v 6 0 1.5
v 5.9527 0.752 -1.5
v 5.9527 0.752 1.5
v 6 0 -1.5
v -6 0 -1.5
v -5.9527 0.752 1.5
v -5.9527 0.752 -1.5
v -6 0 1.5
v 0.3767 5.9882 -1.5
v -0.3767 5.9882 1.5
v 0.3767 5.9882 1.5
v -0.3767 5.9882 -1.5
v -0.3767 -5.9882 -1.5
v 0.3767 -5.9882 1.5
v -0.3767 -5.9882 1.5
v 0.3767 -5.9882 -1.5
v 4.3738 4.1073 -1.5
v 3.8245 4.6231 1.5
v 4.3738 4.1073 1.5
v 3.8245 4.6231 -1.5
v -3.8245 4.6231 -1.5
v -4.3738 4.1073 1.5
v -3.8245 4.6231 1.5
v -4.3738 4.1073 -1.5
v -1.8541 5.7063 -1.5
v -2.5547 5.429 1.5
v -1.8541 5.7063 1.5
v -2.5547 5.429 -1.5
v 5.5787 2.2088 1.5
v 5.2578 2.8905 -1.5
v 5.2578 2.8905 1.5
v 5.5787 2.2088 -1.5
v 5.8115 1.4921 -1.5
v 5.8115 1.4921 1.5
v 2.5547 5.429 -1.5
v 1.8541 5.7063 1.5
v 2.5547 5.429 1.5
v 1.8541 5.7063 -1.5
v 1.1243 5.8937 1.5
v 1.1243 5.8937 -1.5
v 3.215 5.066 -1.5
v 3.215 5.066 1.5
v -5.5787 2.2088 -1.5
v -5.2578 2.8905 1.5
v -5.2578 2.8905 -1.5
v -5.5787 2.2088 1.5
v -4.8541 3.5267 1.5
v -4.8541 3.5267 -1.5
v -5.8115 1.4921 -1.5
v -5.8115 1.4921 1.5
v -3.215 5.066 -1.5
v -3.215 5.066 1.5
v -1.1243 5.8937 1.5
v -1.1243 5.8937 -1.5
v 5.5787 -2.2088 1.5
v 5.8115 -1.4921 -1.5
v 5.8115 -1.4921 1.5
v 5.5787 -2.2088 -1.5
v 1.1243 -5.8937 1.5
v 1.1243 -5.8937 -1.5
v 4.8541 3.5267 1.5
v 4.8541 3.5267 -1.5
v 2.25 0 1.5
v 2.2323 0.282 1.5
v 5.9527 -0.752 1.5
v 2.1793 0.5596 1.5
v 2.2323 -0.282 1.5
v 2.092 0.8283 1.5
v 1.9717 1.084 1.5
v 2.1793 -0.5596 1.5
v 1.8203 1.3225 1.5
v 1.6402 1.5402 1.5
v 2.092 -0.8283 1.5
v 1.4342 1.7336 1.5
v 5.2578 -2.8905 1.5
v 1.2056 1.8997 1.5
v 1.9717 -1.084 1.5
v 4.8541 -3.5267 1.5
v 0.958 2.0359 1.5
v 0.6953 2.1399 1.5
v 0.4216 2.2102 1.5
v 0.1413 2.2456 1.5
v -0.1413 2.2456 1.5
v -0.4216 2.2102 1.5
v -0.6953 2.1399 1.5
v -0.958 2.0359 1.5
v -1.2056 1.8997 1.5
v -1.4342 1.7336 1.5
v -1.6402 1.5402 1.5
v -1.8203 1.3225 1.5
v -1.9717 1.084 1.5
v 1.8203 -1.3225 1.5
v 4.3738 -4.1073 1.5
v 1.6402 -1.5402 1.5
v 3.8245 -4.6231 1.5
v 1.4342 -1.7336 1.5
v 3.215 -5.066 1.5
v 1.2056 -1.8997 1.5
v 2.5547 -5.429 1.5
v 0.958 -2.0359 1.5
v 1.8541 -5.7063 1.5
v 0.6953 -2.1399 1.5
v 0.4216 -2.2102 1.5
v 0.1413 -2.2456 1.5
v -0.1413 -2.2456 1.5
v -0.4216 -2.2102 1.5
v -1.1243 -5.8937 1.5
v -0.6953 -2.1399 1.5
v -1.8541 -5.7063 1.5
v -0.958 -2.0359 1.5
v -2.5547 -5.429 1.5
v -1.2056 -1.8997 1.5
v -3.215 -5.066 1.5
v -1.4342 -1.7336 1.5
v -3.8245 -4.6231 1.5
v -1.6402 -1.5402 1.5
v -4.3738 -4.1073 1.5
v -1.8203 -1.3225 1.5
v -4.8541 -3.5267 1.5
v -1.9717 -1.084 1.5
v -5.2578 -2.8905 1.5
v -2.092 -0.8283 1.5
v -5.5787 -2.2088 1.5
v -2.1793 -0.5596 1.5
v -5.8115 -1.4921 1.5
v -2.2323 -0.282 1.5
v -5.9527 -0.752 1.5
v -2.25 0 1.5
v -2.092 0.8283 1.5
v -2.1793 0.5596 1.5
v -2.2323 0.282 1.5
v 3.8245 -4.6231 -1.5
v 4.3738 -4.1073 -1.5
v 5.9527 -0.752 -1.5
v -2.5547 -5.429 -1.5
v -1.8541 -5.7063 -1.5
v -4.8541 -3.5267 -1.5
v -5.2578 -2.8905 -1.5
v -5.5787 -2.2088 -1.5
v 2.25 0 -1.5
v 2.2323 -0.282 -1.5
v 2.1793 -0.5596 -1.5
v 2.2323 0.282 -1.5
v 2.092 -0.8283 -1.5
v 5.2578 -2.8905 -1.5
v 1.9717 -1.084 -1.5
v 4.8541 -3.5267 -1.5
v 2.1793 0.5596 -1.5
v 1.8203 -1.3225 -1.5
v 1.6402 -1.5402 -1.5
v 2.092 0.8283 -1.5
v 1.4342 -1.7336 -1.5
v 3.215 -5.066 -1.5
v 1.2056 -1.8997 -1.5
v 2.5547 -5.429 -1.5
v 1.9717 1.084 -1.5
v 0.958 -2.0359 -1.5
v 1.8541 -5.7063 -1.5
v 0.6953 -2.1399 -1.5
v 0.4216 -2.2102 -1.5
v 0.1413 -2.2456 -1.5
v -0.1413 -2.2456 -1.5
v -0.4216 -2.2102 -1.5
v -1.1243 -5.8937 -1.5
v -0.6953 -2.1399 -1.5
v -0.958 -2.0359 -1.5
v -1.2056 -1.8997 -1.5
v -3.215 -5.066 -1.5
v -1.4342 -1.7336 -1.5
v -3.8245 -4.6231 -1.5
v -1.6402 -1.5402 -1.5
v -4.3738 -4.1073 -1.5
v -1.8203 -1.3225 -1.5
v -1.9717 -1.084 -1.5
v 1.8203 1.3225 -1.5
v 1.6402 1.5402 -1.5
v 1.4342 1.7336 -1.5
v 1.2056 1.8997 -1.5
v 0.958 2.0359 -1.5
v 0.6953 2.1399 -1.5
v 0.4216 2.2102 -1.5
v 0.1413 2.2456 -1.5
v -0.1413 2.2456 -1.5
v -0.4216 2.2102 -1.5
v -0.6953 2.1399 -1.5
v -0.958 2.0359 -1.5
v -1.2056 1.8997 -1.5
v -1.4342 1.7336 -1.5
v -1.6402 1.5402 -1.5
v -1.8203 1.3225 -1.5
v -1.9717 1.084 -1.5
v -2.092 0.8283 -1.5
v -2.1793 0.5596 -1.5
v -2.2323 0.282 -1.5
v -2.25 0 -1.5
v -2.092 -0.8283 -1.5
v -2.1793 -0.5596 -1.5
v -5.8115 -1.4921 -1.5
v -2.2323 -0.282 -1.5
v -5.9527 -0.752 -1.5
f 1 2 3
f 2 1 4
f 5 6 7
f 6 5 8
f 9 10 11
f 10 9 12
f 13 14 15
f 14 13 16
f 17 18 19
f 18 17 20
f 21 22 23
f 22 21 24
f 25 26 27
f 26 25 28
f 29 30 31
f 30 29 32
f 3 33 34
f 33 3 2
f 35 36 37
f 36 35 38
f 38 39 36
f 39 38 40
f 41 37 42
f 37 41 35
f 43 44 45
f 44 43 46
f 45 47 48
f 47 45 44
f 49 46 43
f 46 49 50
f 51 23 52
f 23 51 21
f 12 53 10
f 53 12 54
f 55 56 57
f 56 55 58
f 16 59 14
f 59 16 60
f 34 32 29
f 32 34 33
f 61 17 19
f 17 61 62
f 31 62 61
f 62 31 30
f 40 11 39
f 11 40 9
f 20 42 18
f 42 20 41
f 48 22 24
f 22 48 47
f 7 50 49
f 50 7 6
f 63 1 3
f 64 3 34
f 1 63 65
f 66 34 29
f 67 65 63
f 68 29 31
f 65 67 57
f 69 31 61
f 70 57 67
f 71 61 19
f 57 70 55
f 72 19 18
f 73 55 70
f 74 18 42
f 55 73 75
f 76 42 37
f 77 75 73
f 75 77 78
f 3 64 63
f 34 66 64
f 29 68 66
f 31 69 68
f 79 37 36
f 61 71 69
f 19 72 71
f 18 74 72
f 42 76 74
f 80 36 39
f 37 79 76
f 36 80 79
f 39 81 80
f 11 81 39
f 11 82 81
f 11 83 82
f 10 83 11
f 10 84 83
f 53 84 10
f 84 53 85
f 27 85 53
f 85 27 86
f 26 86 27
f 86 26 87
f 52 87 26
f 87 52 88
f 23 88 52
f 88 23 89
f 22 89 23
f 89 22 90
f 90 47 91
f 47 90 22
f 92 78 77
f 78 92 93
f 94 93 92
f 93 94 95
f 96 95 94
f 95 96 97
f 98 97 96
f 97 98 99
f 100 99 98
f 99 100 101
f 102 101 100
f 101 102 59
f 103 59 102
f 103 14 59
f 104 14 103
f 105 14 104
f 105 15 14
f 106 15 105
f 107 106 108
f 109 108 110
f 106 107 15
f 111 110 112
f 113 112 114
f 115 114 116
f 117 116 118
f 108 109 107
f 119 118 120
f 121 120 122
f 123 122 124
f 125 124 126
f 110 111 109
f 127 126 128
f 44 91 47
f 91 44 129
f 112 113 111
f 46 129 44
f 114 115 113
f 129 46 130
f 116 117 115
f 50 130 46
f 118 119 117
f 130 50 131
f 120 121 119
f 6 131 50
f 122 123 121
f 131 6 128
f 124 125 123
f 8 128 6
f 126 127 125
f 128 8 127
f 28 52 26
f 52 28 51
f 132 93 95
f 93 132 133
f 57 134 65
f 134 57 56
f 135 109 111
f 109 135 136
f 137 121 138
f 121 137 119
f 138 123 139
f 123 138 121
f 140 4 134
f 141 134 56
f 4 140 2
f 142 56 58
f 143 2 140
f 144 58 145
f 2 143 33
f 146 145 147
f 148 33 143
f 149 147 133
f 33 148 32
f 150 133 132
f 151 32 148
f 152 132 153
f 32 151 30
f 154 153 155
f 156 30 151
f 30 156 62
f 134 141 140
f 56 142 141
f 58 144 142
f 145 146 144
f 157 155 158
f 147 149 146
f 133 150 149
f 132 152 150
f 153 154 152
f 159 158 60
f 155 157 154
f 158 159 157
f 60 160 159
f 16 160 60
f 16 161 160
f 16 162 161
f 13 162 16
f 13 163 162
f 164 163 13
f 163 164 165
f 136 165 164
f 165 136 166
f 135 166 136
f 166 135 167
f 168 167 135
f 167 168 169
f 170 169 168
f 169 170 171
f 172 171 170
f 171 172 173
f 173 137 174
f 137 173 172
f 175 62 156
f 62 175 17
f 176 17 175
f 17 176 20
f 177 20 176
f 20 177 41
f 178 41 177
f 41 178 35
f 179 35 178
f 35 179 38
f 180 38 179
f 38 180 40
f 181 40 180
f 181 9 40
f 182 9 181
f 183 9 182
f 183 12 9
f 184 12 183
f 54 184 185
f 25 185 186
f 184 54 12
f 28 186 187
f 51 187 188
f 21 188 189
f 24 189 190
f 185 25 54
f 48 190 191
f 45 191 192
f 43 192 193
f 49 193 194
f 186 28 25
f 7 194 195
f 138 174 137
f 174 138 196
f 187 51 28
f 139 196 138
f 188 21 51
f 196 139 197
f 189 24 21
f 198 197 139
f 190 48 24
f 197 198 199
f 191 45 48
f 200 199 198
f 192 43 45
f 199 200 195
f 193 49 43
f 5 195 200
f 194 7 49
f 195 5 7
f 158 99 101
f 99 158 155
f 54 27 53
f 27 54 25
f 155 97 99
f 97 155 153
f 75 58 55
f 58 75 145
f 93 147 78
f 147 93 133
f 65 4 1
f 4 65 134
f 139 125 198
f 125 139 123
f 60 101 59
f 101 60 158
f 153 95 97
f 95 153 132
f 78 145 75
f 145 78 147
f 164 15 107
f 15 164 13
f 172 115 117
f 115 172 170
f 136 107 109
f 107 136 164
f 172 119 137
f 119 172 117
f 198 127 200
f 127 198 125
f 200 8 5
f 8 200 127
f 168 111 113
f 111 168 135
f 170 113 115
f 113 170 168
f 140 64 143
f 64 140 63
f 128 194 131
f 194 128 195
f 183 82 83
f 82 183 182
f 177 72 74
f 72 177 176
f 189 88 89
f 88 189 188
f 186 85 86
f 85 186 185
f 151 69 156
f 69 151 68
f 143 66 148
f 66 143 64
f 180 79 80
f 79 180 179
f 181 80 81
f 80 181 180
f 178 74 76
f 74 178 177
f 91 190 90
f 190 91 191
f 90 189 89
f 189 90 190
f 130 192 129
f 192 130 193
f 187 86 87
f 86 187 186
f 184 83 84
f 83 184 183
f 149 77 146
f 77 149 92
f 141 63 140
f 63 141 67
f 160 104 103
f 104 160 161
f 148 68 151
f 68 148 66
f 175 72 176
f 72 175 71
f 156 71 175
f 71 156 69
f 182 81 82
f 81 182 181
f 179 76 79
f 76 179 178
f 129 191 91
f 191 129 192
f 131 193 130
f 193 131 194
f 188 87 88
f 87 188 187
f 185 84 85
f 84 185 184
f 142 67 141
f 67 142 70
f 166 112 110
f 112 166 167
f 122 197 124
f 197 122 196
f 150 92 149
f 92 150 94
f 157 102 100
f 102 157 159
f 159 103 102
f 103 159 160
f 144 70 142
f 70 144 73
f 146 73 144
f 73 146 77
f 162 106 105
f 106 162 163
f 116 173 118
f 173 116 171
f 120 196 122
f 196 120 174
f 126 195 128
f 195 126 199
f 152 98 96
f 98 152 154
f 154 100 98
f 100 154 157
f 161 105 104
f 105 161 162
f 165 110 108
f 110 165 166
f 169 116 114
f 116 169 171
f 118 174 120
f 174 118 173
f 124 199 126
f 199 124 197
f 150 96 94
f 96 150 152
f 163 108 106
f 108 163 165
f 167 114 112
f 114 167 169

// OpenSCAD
$fn = 50;


difference() {
	union() {
		translate(v = [0, 0, -1.5000000000]) {
			cylinder(h = 3, r = 6.0000000000);
		}
	}
	union() {
		translate(v = [0, 0, -100.0000000000]) {
			cylinder(h = 200, r = 2.2500000000);
		}
	}
}
